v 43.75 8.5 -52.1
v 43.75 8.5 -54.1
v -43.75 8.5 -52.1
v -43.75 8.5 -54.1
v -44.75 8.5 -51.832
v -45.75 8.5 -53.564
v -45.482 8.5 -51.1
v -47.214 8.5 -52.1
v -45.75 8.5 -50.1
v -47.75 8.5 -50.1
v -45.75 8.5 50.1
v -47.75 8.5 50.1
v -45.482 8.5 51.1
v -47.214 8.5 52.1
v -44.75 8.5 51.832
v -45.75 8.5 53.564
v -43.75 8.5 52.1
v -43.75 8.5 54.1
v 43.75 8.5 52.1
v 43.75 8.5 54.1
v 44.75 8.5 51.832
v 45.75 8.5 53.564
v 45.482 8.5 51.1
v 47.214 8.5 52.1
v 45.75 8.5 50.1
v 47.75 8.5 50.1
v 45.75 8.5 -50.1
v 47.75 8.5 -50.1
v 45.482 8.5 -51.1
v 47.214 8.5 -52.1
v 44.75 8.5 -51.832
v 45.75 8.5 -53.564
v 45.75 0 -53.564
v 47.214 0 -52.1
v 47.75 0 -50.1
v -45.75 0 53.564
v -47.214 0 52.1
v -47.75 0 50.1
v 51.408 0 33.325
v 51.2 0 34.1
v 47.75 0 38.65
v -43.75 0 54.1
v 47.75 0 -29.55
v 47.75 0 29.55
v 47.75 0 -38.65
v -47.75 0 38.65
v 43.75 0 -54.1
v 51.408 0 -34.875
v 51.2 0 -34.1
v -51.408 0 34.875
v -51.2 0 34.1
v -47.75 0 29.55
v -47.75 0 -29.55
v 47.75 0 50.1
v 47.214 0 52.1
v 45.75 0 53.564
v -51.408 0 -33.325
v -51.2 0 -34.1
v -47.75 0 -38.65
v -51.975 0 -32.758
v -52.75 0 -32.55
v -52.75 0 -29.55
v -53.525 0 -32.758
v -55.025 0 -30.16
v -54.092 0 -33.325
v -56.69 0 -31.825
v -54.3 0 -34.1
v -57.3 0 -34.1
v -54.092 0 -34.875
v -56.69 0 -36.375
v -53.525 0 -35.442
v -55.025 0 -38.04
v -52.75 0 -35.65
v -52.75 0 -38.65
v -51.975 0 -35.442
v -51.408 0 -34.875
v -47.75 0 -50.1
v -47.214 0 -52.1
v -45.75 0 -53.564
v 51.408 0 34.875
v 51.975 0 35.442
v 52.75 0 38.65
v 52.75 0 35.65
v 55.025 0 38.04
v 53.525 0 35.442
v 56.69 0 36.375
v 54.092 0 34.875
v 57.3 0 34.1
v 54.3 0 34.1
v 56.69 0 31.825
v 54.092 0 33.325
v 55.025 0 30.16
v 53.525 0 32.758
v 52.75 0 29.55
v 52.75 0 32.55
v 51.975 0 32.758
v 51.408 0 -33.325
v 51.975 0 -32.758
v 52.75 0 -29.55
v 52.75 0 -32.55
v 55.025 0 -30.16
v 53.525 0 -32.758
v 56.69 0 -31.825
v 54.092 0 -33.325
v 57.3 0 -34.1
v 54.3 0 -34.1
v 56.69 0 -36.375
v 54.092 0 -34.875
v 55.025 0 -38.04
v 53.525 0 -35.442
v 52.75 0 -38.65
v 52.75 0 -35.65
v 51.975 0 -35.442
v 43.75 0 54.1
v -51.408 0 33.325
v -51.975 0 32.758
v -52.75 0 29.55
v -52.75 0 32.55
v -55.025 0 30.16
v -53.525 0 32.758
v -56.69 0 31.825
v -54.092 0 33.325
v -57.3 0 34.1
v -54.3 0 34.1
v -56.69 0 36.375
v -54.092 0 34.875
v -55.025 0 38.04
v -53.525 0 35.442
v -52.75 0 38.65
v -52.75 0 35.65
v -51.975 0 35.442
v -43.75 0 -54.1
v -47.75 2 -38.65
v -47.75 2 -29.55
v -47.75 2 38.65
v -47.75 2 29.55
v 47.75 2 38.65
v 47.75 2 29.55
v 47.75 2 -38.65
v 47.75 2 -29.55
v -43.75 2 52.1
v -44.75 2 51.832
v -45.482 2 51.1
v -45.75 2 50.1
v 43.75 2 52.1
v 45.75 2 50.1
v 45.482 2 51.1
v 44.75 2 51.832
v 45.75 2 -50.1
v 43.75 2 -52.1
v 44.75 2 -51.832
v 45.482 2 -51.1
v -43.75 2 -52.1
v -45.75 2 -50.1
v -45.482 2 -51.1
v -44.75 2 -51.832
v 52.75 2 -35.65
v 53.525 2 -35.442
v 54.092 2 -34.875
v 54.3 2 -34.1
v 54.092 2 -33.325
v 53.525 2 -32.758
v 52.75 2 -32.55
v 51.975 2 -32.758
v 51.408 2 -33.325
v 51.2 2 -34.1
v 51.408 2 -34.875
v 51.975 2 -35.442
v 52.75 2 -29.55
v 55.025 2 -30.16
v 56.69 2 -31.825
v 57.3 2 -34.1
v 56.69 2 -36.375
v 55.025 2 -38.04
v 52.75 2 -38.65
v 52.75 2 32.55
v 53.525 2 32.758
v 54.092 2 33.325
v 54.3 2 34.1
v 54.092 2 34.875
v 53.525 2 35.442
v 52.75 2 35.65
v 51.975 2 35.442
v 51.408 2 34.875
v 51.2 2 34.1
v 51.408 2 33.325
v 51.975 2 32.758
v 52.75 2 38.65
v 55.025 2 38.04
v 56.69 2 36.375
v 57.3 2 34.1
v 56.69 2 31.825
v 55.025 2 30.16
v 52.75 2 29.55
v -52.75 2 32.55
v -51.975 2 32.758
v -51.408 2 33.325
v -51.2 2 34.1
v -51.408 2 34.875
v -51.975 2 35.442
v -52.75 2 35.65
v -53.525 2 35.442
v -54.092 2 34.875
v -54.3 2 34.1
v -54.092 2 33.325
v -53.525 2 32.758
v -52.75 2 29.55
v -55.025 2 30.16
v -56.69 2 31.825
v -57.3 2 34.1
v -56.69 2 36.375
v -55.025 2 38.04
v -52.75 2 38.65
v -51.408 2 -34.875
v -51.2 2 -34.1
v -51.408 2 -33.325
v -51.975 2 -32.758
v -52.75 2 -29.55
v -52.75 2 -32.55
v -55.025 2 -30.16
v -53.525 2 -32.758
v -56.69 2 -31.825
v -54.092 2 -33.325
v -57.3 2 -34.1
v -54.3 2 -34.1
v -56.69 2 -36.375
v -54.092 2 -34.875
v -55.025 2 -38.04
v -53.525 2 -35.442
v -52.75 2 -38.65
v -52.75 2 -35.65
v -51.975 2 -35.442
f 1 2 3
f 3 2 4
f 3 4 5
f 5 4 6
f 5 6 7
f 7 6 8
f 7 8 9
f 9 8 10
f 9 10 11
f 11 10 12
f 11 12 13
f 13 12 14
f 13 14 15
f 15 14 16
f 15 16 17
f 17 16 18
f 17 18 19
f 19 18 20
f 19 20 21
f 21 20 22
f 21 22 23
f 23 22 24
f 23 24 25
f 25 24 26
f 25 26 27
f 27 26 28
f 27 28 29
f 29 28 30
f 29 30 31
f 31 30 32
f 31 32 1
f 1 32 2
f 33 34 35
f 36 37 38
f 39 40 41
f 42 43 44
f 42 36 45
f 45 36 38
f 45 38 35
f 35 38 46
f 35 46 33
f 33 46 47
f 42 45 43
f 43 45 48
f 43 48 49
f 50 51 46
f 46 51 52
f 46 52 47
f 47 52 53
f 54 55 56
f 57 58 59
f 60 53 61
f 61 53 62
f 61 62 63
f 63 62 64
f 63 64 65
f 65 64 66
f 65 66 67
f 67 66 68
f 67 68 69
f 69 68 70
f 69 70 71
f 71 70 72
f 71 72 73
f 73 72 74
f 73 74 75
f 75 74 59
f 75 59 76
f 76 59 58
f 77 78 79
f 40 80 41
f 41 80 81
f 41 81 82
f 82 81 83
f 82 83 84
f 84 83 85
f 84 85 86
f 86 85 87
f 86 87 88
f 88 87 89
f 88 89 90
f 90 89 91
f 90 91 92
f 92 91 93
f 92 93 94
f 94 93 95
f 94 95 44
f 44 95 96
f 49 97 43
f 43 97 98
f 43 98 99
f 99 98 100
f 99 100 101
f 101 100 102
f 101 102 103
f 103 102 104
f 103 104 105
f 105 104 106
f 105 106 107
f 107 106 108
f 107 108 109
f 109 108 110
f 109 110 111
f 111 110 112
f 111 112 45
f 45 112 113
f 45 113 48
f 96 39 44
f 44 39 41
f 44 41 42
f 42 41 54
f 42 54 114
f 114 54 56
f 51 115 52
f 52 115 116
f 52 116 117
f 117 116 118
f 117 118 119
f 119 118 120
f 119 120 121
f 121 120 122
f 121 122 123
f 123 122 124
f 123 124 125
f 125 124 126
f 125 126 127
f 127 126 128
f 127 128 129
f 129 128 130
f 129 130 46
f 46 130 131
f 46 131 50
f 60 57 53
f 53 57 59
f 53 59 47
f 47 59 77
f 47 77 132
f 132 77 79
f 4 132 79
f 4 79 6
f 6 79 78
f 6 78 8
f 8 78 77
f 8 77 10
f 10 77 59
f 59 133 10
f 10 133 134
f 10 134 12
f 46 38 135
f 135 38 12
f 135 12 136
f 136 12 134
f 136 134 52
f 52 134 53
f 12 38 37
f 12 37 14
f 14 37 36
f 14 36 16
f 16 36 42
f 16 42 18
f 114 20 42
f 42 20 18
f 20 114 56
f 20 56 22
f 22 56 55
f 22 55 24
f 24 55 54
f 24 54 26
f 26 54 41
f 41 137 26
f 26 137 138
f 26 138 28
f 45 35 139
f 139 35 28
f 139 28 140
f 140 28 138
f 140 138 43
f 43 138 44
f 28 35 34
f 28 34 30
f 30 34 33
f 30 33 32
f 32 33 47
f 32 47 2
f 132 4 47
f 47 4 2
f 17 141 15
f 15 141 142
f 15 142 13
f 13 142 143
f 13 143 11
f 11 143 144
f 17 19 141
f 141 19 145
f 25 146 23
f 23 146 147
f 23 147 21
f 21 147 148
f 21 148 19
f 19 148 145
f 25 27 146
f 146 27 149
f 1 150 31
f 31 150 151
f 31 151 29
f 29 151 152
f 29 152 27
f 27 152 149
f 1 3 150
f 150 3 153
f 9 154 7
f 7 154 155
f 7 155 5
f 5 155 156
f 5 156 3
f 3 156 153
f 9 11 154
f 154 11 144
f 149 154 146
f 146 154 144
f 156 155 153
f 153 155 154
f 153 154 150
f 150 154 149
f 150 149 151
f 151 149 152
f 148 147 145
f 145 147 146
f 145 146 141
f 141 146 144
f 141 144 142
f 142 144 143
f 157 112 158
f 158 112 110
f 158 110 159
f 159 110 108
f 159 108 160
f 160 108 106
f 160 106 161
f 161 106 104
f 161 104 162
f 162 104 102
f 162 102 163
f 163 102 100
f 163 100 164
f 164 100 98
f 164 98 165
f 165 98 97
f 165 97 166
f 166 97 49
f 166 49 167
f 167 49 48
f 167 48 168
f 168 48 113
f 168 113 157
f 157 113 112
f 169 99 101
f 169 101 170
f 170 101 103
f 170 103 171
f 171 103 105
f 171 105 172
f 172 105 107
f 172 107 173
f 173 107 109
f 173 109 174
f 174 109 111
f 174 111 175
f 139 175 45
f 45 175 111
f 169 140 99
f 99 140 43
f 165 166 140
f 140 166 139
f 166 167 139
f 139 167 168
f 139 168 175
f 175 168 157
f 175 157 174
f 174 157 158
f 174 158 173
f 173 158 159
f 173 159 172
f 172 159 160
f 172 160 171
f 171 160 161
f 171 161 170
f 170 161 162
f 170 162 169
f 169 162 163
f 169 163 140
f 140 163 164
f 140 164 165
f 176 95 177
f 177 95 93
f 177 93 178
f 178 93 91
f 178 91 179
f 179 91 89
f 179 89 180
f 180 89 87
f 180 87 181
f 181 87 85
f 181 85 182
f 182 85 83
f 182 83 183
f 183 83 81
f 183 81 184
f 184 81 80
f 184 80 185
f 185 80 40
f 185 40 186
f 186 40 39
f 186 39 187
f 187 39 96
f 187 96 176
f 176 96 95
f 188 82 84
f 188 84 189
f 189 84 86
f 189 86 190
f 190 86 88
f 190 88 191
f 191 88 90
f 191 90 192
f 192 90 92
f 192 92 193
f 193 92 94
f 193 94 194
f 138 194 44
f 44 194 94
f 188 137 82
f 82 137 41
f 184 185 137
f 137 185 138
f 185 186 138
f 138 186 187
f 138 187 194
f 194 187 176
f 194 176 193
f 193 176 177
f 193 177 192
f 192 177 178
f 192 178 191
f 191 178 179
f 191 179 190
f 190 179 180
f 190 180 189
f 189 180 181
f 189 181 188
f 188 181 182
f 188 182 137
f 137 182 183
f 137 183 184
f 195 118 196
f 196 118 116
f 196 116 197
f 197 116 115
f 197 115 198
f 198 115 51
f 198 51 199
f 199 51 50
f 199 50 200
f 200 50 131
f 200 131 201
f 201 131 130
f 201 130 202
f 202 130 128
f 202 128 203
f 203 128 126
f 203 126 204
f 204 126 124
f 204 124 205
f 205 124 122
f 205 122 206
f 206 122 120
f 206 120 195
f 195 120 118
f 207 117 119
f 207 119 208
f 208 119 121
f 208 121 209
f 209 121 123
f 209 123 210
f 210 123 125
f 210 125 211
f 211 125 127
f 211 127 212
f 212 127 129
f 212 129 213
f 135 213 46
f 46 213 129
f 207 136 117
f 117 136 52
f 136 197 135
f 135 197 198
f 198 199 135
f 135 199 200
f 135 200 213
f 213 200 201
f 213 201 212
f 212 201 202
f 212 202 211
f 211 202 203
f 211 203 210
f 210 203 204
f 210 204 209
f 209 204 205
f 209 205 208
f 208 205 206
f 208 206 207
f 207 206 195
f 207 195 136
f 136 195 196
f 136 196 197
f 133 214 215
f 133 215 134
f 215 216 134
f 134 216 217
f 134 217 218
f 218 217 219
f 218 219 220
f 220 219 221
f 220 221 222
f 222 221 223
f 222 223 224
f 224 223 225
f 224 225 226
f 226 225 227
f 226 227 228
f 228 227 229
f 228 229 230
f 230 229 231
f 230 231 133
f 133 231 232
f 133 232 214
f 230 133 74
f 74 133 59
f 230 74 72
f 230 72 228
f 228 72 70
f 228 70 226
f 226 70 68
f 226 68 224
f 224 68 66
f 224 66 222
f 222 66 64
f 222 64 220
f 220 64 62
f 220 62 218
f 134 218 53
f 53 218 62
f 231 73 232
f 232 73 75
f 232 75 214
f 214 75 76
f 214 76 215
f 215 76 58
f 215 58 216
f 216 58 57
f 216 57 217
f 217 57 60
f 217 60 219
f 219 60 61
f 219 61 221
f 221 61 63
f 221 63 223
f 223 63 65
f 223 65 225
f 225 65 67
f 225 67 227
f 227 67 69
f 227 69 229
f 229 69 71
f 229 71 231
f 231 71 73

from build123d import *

# Parameters (mm, degrees)
SALIENTE_EXTRUIR1_DEPTH = 8.5
SALIENTE_EXTRUIR2_DEPTH = 2
CROQUIS3_R              = 1.55
SALIENTE_EXTRUIR3_DEPTH = 2


with BuildPart() as part:
    # Croquis1 → Saliente-Extruir1 (new body)
    with BuildSketch(Plane(origin=(0, 0, 0), x_dir=(1, 0, 0), z_dir=(0, 1, 0))):
        with BuildLine():
            Line((-47.75, 50.1), (-47.75, -50.1))
            ThreePointArc((-47.75, -50.1), (-46.578427125, -52.928427125), (-43.75, -54.1))
            Line((-43.75, -54.1), (43.75, -54.1))
            ThreePointArc((43.75, -54.1), (46.578427125, -52.928427125), (47.75, -50.1))
            Line((47.75, -50.1), (47.75, 50.1))
            ThreePointArc((47.75, 50.1), (46.578427125, 52.928427125), (43.75, 54.1))
            Line((43.75, 54.1), (-43.75, 54.1))
            ThreePointArc((-43.75, 54.1), (-46.578427125, 52.928427125), (-47.75, 50.1))
        make_face()
        with BuildLine():
            Line((-43.75, 52.1), (43.75, 52.1))
            ThreePointArc((43.75, 52.1), (45.164213562, 51.514213562), (45.75, 50.1))
            Line((45.75, 50.1), (45.75, -50.1))
            ThreePointArc((45.75, -50.1), (45.164213562, -51.514213562), (43.75, -52.1))
            Line((43.75, -52.1), (-43.75, -52.1))
            ThreePointArc((-43.75, -52.1), (-45.164213562, -51.514213562), (-45.75, -50.1))
            Line((-45.75, -50.1), (-45.75, 50.1))
            ThreePointArc((-45.75, 50.1), (-45.164213562, 51.514213562), (-43.75, 52.1))
        make_face(mode=Mode.SUBTRACT)
    extrude(amount=SALIENTE_EXTRUIR1_DEPTH)

    # Croquis2 → Saliente-Extruir2 (add)
    with BuildSketch(Plane(origin=(0, 0, 0), x_dir=(1, 0, 0), z_dir=(0, 1, 0))):
        with BuildLine():
            Line((43.75, 54.1), (-43.75, 54.1))
            ThreePointArc((-43.75, 54.1), (-46.578427125, 52.928427125), (-47.75, 50.1))
            Line((-47.75, 50.1), (-47.75, -50.1))
            ThreePointArc((-47.75, -50.1), (-46.578427125, -52.928427125), (-43.75, -54.1))
            Line((-43.75, -54.1), (43.75, -54.1))
            ThreePointArc((43.75, -54.1), (46.578427125, -52.928427125), (47.75, -50.1))
            Line((47.75, -50.1), (47.75, 50.1))
            ThreePointArc((47.75, 50.1), (46.578427125, 52.928427125), (43.75, 54.1))
        make_face()
    extrude(amount=SALIENTE_EXTRUIR2_DEPTH)

    # Croquis3 → Saliente-Extruir3 (add)
    with BuildSketch(Plane(origin=(0, 0, 0), x_dir=(1, 0, 0), z_dir=(0, 1, 0))):
        with BuildLine():
            Line((-52.75, 38.65), (-47.75, 38.65))
            Line((-47.75, 38.65), (-47.75, 50.1))
            ThreePointArc((-47.75, 50.1), (-46.578427125, 52.928427125), (-43.75, 54.1))
            Line((-43.75, 54.1), (43.75, 54.1))
            ThreePointArc((43.75, 54.1), (46.578427125, 52.928427125), (47.75, 50.1))
            Line((47.75, 50.1), (47.75, 38.65))
            Line((47.75, 38.65), (52.75, 38.65))
            ThreePointArc((52.75, 38.65), (57.3, 34.1), (52.75, 29.55))
            Line((52.75, 29.55), (47.75, 29.55))
            Line((47.75, 29.55), (47.75, -29.55))
            Line((47.75, -29.55), (52.75, -29.55))
            ThreePointArc((52.75, -29.55), (57.3, -34.1), (52.75, -38.65))
            Line((52.75, -38.65), (47.75, -38.65))
            Line((47.75, -38.65), (47.75, -50.1))
            ThreePointArc((47.75, -50.1), (46.578427125, -52.928427125), (43.75, -54.1))
            Line((43.75, -54.1), (-43.75, -54.1))
            ThreePointArc((-43.75, -54.1), (-46.578427125, -52.928427125), (-47.75, -50.1))
            Line((-47.75, -50.1), (-47.75, -38.65))
            Line((-47.75, -38.65), (-52.75, -38.65))
            ThreePointArc((-52.75, -38.65), (-57.3, -34.1), (-52.75, -29.55))
            Line((-52.75, -29.55), (-47.75, -29.55))
            Line((-47.75, -29.55), (-47.75, 29.55))
            Line((-47.75, 29.55), (-52.75, 29.55))
            ThreePointArc((-52.75, 29.55), (-57.3, 34.1), (-52.75, 38.65))
        make_face()
        with Locations((-52.75, 34.1)):
            Circle(CROQUIS3_R, mode=Mode.SUBTRACT)
        with Locations((52.75, 34.1)):
            Circle(CROQUIS3_R, mode=Mode.SUBTRACT)
        with Locations((52.75, -34.1)):
            Circle(CROQUIS3_R, mode=Mode.SUBTRACT)
        with Locations((-52.75, -34.1)):
            Circle(CROQUIS3_R, mode=Mode.SUBTRACT)
    extrude(amount=SALIENTE_EXTRUIR3_DEPTH)


solid = part.part
